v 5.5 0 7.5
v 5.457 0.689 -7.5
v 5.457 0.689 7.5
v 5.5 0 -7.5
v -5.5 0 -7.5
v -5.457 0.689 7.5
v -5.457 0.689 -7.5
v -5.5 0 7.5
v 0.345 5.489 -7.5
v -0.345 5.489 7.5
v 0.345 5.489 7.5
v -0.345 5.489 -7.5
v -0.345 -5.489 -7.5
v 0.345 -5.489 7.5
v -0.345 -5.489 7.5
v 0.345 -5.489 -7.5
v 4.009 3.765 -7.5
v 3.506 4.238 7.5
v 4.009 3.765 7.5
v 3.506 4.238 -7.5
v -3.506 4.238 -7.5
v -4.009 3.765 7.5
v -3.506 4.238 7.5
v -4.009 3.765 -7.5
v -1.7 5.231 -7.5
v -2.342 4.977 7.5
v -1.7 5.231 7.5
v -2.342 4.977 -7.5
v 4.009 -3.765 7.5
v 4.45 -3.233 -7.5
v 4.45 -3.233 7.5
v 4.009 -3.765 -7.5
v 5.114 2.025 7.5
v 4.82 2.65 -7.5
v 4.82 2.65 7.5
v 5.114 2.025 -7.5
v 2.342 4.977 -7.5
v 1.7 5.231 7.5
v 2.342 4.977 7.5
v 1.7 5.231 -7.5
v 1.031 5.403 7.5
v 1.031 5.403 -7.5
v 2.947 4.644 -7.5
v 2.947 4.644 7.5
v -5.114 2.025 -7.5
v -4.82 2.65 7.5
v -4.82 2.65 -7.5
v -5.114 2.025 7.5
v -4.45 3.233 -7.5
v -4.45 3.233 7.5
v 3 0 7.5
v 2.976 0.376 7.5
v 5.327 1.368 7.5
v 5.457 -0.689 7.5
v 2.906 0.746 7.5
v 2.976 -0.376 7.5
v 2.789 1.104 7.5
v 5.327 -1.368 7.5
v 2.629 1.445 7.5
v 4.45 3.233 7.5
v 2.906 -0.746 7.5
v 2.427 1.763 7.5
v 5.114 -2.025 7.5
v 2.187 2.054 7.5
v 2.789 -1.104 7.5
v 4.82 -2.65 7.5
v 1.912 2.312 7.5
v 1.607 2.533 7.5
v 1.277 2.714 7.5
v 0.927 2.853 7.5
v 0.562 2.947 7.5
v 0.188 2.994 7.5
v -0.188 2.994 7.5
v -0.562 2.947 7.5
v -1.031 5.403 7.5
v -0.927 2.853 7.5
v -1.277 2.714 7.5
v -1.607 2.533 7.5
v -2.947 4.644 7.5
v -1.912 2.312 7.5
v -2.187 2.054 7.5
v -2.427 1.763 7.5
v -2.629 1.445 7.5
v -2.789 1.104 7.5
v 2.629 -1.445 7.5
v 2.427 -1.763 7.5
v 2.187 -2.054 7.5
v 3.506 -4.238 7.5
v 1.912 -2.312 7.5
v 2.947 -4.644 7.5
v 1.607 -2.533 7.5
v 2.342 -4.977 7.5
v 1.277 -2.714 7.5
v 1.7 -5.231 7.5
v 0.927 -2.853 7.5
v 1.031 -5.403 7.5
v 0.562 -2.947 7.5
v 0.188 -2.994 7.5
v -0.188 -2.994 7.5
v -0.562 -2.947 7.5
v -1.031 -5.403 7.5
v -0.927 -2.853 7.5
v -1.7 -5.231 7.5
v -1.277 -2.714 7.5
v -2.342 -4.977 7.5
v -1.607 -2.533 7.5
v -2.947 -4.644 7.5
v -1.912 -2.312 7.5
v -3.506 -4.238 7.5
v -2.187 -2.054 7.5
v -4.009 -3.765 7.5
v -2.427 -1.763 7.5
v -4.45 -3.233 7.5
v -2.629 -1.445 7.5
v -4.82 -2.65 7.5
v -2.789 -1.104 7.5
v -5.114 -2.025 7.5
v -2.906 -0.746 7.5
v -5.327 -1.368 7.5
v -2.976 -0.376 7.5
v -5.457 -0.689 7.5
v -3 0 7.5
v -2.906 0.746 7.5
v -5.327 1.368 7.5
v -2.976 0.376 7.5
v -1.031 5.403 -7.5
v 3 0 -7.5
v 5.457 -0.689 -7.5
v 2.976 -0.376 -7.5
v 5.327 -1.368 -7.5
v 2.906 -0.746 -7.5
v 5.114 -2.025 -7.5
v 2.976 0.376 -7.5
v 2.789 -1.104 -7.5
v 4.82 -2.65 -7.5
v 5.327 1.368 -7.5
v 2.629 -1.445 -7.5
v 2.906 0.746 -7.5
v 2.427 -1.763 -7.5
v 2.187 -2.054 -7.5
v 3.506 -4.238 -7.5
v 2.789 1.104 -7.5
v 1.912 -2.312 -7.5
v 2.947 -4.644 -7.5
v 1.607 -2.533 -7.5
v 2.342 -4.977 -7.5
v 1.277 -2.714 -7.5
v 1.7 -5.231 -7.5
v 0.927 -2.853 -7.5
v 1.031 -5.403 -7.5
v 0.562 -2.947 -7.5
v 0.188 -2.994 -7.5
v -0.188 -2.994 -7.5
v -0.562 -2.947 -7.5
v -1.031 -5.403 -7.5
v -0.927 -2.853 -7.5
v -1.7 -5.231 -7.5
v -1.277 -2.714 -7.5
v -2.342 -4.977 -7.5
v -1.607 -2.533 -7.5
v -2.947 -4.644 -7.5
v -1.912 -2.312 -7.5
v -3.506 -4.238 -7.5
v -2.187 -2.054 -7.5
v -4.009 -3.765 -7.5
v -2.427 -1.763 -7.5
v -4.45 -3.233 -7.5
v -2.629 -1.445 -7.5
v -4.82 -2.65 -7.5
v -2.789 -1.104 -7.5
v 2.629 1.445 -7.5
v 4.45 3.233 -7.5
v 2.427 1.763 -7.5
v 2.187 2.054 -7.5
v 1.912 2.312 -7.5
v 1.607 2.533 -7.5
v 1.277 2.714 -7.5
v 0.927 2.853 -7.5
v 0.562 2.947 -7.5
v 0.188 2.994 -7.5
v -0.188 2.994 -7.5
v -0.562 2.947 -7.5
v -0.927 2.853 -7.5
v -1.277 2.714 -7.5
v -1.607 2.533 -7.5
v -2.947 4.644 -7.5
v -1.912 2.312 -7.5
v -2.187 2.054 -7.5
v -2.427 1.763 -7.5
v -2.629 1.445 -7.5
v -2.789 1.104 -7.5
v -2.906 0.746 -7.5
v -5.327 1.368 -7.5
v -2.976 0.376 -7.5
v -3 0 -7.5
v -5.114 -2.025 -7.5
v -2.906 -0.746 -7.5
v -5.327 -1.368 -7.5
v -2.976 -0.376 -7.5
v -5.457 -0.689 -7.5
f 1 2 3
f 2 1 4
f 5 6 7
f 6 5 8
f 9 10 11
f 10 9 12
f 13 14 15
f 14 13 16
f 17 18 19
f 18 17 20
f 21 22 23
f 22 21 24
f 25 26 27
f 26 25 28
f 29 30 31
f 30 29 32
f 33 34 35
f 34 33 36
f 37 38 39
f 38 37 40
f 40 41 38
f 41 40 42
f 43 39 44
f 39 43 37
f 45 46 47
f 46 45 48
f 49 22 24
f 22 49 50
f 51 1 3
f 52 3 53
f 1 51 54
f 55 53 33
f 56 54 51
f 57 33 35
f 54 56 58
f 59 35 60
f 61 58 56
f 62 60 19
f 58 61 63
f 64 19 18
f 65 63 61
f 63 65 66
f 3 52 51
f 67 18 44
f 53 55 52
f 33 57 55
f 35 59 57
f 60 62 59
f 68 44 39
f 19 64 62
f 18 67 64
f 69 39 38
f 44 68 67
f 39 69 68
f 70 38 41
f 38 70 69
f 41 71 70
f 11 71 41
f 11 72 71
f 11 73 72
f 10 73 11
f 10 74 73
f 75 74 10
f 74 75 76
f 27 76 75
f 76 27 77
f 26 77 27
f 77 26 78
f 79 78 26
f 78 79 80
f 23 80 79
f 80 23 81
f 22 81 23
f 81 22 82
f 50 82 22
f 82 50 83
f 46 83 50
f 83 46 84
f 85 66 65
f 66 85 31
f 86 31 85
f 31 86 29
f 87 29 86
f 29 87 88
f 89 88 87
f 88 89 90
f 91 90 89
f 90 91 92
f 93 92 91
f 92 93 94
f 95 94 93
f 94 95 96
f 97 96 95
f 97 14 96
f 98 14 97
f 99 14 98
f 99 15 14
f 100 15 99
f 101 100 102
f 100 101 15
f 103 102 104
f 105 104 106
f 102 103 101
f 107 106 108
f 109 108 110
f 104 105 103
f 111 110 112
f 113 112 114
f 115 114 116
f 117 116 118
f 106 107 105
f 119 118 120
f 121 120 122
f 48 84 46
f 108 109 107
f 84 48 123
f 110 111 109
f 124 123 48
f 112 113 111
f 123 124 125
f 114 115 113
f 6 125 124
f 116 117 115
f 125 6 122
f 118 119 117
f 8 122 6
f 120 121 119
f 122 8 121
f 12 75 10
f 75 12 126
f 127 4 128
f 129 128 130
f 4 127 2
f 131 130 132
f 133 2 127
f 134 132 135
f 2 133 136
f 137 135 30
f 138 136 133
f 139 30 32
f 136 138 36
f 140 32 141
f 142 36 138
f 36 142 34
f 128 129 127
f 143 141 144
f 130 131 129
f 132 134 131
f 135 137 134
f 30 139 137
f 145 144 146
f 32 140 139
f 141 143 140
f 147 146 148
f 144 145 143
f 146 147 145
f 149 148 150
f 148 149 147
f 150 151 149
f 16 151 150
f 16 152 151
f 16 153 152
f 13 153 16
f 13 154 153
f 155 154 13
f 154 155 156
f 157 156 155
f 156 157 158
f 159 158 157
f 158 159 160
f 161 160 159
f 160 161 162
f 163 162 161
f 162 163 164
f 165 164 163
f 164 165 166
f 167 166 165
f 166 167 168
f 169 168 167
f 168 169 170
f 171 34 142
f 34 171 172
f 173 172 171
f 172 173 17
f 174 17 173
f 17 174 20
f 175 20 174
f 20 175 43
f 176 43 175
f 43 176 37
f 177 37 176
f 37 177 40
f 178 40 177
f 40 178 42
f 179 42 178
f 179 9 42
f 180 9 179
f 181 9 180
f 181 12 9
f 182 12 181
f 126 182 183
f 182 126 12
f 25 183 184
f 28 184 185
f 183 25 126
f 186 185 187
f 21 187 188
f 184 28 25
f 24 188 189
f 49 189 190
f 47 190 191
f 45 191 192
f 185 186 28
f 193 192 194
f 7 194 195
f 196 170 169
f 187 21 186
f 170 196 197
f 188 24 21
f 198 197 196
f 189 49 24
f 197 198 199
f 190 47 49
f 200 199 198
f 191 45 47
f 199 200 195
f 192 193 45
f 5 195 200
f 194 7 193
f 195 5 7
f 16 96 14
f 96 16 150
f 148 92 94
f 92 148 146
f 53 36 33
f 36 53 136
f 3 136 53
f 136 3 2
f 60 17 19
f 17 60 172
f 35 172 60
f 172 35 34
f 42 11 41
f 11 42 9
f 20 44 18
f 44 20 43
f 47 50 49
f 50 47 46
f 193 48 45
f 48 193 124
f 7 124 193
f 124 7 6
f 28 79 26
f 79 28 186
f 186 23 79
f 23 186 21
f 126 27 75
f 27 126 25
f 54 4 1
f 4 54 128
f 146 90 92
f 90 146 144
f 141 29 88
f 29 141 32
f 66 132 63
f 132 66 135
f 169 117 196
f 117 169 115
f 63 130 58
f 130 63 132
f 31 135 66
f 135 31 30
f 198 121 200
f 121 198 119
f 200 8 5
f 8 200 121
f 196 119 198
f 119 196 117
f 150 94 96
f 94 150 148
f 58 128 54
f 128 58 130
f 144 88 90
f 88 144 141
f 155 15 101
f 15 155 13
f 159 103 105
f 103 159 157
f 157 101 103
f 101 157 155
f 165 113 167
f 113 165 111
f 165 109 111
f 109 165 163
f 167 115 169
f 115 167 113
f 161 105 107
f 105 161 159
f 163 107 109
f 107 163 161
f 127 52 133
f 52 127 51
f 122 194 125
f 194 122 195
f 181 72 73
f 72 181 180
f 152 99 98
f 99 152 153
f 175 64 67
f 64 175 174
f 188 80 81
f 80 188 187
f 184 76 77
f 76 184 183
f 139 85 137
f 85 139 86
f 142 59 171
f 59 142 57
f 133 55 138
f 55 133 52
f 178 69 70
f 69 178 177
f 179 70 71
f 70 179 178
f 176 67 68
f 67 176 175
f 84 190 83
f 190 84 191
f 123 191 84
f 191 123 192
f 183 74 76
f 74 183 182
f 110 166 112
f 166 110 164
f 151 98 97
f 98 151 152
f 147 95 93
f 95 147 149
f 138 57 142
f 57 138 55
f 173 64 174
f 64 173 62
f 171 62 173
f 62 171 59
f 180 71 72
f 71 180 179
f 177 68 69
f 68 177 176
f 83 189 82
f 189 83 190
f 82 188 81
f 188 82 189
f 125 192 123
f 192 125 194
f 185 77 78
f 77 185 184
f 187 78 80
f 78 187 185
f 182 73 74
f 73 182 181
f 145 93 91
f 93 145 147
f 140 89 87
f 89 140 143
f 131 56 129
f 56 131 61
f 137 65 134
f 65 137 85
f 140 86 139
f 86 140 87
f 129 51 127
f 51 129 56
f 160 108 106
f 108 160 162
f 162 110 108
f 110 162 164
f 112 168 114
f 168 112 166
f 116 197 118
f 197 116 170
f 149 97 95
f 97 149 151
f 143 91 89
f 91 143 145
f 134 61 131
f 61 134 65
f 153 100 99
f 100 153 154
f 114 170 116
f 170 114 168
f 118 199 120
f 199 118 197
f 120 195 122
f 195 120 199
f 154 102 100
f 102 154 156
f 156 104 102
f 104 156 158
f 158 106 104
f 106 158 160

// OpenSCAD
$fn = 50;


difference() {
	union() {
		translate(v = [0, 0, -7.5000000000]) {
			cylinder(h = 15, r = 5.5000000000);
		}
	}
	union() {
		translate(v = [0, 0, -100.0000000000]) {
			cylinder(h = 200, r = 3);
		}
	}
}
